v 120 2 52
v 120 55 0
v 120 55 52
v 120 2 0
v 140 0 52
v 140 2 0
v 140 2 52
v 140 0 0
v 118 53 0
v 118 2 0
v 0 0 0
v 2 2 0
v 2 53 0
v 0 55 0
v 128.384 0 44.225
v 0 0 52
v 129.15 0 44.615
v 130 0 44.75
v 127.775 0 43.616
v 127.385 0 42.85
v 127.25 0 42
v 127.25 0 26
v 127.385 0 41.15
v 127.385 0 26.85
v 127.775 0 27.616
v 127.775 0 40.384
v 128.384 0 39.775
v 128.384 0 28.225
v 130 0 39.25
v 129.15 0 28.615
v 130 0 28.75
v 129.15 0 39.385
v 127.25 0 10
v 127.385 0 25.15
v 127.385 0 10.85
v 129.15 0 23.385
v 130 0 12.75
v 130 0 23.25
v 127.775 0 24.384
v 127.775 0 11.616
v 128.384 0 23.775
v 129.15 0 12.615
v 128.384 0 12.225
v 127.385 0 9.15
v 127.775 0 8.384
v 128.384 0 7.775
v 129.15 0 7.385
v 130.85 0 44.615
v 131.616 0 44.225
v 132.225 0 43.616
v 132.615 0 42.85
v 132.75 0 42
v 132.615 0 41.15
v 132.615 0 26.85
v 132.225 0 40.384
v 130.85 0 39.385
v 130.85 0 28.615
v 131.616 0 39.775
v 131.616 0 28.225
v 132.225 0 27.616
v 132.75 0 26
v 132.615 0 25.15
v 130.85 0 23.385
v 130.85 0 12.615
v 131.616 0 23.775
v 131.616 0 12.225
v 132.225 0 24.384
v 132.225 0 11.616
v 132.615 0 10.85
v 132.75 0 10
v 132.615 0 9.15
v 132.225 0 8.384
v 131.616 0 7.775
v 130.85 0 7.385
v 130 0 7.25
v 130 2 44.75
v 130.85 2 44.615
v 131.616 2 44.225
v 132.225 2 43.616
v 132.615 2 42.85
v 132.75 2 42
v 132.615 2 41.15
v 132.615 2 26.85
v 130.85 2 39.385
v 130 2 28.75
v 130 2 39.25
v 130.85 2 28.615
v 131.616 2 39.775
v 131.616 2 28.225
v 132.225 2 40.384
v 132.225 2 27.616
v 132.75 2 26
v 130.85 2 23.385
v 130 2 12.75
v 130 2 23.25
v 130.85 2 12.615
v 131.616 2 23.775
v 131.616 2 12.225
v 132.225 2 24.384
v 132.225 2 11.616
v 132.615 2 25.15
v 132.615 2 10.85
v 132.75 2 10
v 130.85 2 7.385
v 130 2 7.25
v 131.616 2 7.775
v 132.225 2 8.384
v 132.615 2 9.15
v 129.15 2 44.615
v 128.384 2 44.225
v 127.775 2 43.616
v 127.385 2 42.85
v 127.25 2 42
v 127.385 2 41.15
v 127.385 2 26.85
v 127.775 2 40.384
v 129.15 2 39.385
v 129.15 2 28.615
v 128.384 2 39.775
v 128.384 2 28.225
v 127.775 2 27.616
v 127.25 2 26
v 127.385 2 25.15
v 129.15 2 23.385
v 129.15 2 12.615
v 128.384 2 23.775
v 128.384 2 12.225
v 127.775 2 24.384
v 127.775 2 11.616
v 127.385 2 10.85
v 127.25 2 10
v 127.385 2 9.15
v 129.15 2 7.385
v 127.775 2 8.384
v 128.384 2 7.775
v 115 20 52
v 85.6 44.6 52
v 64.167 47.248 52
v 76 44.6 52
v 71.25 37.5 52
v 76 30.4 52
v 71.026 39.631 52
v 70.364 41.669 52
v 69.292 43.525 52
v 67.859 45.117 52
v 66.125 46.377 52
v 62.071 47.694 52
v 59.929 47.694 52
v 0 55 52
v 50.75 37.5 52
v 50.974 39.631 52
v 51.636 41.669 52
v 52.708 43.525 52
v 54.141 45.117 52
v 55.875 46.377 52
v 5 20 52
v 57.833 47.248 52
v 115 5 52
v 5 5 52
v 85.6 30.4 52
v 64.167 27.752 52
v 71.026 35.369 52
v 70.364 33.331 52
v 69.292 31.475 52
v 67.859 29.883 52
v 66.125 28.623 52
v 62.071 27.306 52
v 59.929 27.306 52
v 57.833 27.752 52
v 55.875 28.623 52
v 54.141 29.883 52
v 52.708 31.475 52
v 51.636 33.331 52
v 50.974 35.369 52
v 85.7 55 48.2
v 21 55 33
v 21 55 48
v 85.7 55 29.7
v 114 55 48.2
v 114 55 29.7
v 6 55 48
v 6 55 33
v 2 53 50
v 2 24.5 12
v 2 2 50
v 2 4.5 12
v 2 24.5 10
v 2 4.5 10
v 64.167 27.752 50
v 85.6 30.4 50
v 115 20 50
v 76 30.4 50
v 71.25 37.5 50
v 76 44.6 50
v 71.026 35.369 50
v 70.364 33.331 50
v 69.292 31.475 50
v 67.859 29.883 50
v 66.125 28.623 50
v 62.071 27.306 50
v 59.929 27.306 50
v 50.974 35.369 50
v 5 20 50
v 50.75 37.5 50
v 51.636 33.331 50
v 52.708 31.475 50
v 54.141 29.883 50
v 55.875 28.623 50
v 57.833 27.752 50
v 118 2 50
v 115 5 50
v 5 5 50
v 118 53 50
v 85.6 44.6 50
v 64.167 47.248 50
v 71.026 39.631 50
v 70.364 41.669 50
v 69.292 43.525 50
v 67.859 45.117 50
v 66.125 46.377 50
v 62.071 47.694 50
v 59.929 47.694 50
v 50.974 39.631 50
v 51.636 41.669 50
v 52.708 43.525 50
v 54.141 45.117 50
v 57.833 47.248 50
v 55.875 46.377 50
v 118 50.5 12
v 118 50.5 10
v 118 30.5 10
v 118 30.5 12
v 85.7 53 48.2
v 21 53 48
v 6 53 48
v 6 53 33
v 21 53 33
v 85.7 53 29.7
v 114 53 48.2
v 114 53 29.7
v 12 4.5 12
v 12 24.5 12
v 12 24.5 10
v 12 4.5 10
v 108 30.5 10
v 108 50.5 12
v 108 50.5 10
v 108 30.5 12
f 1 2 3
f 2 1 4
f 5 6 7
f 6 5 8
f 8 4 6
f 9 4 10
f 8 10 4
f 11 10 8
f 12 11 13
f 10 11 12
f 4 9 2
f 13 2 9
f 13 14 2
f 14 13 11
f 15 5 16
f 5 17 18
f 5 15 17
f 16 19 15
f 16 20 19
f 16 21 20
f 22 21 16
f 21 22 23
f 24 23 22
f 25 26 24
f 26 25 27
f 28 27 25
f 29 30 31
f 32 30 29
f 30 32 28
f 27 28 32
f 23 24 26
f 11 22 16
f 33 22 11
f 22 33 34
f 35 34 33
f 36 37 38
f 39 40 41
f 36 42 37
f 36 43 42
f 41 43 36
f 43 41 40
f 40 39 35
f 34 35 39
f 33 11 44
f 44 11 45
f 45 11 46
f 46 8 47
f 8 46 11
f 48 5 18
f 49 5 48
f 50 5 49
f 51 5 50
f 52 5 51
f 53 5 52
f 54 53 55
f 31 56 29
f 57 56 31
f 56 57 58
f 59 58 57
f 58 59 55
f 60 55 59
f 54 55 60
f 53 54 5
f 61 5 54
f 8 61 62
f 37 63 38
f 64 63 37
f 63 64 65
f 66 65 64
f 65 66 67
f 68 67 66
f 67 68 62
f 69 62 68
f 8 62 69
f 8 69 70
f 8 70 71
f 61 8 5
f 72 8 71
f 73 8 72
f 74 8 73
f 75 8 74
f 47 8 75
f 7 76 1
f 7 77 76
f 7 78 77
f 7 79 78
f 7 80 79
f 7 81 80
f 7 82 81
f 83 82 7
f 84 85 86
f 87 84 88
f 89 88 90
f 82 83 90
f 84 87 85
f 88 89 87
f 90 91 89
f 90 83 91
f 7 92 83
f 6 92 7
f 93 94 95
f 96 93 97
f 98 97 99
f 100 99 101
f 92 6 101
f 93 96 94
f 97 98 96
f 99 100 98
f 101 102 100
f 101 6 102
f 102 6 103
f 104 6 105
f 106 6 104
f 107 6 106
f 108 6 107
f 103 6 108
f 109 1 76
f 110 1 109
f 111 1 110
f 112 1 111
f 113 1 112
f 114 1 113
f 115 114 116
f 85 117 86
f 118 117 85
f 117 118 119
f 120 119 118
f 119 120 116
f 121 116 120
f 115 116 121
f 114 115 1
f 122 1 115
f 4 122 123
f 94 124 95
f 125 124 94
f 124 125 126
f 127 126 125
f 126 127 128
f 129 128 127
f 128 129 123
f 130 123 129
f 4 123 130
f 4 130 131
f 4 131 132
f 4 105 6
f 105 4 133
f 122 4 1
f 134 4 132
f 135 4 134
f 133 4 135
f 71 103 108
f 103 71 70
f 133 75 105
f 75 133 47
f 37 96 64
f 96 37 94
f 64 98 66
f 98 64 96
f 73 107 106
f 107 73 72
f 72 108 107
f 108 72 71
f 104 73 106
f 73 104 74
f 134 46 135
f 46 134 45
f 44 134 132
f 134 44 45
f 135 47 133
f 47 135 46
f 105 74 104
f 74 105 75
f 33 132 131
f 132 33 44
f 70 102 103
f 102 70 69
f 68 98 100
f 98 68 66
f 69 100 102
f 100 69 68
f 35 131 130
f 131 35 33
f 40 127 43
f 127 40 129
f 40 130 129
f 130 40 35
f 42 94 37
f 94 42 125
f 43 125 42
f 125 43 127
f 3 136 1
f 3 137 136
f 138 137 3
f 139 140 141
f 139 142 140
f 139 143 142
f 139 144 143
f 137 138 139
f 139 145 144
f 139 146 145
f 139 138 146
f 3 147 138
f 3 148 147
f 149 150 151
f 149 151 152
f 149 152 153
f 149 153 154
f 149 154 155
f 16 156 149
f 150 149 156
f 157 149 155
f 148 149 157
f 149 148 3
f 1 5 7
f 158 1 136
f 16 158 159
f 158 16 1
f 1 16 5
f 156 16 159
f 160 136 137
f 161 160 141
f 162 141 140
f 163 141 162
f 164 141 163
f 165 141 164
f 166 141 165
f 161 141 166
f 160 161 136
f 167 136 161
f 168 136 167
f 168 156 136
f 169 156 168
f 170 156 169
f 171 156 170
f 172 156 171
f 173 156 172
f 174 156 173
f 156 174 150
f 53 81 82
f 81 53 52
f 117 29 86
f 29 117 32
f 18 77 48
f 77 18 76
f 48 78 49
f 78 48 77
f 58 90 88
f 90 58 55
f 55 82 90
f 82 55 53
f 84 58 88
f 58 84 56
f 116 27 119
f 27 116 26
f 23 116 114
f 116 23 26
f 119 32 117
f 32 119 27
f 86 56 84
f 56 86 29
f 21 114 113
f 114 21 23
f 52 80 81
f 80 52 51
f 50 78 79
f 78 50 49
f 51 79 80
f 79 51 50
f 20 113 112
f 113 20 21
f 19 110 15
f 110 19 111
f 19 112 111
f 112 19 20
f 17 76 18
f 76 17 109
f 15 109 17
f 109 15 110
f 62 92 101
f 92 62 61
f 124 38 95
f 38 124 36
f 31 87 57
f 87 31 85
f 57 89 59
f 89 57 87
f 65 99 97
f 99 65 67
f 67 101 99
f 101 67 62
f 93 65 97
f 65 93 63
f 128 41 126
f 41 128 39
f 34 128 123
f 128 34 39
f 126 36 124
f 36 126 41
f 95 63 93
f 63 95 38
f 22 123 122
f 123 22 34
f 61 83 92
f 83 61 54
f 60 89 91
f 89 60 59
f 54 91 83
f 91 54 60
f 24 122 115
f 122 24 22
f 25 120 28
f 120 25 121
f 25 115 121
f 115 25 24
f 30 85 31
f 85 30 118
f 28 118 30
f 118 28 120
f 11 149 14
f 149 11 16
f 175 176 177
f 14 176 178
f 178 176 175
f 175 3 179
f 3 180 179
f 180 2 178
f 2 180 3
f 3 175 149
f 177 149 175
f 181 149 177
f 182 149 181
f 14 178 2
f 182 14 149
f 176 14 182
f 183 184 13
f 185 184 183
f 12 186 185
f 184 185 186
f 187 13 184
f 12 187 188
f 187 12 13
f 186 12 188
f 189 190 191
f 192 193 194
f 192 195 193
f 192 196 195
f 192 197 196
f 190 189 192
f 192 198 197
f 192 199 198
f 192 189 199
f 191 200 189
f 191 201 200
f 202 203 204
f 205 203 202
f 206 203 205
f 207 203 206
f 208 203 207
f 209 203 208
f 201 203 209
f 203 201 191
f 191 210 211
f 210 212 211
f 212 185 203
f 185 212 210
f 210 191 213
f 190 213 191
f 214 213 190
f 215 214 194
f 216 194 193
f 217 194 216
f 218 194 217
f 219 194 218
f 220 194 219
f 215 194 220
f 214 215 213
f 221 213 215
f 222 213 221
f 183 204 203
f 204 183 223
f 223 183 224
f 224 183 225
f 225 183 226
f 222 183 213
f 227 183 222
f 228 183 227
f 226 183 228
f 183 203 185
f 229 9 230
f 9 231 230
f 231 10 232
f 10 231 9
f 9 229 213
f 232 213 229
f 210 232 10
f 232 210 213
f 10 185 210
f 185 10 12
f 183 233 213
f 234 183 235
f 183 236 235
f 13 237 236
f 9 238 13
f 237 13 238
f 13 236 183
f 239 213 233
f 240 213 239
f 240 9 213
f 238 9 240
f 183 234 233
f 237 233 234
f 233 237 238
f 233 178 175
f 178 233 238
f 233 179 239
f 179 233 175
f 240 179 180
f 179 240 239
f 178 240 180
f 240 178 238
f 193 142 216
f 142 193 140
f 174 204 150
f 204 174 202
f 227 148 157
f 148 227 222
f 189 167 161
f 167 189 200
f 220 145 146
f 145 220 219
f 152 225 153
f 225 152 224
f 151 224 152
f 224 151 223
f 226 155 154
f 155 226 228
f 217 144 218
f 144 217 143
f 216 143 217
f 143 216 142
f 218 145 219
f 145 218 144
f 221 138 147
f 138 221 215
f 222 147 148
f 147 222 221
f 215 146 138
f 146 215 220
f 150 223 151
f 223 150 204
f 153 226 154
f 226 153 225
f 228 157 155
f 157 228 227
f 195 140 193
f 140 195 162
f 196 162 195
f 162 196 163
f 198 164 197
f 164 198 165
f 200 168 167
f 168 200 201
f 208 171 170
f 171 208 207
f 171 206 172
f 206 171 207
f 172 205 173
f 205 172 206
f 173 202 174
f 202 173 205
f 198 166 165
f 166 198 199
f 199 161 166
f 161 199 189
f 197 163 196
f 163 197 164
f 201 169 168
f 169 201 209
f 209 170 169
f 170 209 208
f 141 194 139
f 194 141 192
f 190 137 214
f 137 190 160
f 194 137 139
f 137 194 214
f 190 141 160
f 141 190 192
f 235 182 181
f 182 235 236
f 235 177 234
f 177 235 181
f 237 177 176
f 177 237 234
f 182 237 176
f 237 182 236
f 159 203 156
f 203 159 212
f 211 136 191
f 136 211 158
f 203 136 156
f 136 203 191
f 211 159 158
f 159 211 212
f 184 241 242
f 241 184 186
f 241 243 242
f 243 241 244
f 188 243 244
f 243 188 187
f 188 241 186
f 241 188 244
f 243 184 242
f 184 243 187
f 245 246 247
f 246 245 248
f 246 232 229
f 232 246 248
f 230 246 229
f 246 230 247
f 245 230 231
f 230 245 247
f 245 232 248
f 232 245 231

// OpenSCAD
BaseWidth = 116;
BaseDepth = 51;
BaseHeightTop = 50;

WallThickness = 2;

AnchorWidth = 20;
AnchorHeight = 20;
AhcnorHoleDiameter = 5.5;

PowerInputHoleWidth = 28.3;
PowerInputHoleHeight= 18.5;

ButtonHoleDiameter = 20.5;

PowerSwithLength = 14.2;
PowerSwithWidth = 9.6;

BackWindowWidth  = 110;
BackWindowHeight = 15;


// Top main body
difference() {
    cube(size=[BaseWidth+2*WallThickness, BaseDepth+2*WallThickness, BaseHeightTop+WallThickness], center=false);
    translate([WallThickness, WallThickness, 0])
    cube(size=[BaseWidth, BaseDepth, BaseHeightTop], center=false);

    // Power Input Hole
    translate([BaseWidth-WallThickness-PowerInputHoleWidth, BaseDepth+WallThickness, BaseHeightTop-PowerInputHoleWidth+8])
    cube(size=[PowerInputHoleWidth, WallThickness, PowerInputHoleHeight], center=false);

    // Button hole
    translate([BaseWidth/2+10-7, BaseDepth/2+WallThickness-10+20, BaseHeightTop])
    cylinder(h=WallThickness, d=ButtonHoleDiameter, center=false, $fn=30);

    // Power switch hole
    translate([BaseWidth - 40, BaseDepth/2-PowerSwithLength/2+WallThickness-10+20, BaseHeightTop])
    cube(size=[PowerSwithWidth, PowerSwithLength, WallThickness], center=false);

    // Small Window for Replay LEDs
    translate([6, BaseDepth+WallThickness, 33])
    cube(size=[15, WallThickness, 15], center=false);

    // Back Window
    translate([5, 5, BaseHeightTop])
    cube(size=[BackWindowWidth, BackWindowHeight, WallThickness], center=false);

}





// Inside anchor 1
translate([WallThickness, BaseDepth/2-AnchorWidth/2+WallThickness-13, BaseHeightTop/2-15])
cube(size=[AnchorHeight/2, AnchorWidth, WallThickness], center=false);

// Inside anchor 2
translate([BaseWidth-AnchorWidth/2+WallThickness, BaseDepth/2-AnchorWidth/2+WallThickness+13, BaseHeightTop/2-15])
cube(size=[AnchorHeight/2, AnchorWidth, WallThickness], center=false);

// Side anchor 1
translate([BaseWidth+WallThickness*2, 0, 0])
    difference() {
        cube(size=[AnchorHeight, WallThickness, AnchorWidth], center=false);
        translate([AnchorHeight/2, 0, AnchorWidth/2])
        rotate([-90, 0, 0])
        cylinder(h=WallThickness, d=AhcnorHoleDiameter, center=false, $fn=20);
    }
   
// Side anchor 2
translate([BaseWidth+WallThickness*2, 0, BaseHeightTop+WallThickness-AnchorWidth])
    difference() {
        cube(size=[AnchorHeight, WallThickness, AnchorWidth], center=false);
        translate([AnchorHeight/2, 0, AnchorWidth/2])
        rotate([-90, 0, 0])
        cylinder(h=WallThickness, d=AhcnorHoleDiameter, center=false, $fn=20);
    }
    

// Side anchor 3
translate([BaseWidth+WallThickness*2, 0, (BaseHeightTop+WallThickness-AnchorWidth)/2])
    difference() {
        cube(size=[AnchorHeight, WallThickness, AnchorWidth], center=false);
        translate([AnchorHeight/2, 0, AnchorWidth/2])
        rotate([-90, 0, 0])
        cylinder(h=WallThickness, d=AhcnorHoleDiameter, center=false, $fn=20);
    }
    

    
